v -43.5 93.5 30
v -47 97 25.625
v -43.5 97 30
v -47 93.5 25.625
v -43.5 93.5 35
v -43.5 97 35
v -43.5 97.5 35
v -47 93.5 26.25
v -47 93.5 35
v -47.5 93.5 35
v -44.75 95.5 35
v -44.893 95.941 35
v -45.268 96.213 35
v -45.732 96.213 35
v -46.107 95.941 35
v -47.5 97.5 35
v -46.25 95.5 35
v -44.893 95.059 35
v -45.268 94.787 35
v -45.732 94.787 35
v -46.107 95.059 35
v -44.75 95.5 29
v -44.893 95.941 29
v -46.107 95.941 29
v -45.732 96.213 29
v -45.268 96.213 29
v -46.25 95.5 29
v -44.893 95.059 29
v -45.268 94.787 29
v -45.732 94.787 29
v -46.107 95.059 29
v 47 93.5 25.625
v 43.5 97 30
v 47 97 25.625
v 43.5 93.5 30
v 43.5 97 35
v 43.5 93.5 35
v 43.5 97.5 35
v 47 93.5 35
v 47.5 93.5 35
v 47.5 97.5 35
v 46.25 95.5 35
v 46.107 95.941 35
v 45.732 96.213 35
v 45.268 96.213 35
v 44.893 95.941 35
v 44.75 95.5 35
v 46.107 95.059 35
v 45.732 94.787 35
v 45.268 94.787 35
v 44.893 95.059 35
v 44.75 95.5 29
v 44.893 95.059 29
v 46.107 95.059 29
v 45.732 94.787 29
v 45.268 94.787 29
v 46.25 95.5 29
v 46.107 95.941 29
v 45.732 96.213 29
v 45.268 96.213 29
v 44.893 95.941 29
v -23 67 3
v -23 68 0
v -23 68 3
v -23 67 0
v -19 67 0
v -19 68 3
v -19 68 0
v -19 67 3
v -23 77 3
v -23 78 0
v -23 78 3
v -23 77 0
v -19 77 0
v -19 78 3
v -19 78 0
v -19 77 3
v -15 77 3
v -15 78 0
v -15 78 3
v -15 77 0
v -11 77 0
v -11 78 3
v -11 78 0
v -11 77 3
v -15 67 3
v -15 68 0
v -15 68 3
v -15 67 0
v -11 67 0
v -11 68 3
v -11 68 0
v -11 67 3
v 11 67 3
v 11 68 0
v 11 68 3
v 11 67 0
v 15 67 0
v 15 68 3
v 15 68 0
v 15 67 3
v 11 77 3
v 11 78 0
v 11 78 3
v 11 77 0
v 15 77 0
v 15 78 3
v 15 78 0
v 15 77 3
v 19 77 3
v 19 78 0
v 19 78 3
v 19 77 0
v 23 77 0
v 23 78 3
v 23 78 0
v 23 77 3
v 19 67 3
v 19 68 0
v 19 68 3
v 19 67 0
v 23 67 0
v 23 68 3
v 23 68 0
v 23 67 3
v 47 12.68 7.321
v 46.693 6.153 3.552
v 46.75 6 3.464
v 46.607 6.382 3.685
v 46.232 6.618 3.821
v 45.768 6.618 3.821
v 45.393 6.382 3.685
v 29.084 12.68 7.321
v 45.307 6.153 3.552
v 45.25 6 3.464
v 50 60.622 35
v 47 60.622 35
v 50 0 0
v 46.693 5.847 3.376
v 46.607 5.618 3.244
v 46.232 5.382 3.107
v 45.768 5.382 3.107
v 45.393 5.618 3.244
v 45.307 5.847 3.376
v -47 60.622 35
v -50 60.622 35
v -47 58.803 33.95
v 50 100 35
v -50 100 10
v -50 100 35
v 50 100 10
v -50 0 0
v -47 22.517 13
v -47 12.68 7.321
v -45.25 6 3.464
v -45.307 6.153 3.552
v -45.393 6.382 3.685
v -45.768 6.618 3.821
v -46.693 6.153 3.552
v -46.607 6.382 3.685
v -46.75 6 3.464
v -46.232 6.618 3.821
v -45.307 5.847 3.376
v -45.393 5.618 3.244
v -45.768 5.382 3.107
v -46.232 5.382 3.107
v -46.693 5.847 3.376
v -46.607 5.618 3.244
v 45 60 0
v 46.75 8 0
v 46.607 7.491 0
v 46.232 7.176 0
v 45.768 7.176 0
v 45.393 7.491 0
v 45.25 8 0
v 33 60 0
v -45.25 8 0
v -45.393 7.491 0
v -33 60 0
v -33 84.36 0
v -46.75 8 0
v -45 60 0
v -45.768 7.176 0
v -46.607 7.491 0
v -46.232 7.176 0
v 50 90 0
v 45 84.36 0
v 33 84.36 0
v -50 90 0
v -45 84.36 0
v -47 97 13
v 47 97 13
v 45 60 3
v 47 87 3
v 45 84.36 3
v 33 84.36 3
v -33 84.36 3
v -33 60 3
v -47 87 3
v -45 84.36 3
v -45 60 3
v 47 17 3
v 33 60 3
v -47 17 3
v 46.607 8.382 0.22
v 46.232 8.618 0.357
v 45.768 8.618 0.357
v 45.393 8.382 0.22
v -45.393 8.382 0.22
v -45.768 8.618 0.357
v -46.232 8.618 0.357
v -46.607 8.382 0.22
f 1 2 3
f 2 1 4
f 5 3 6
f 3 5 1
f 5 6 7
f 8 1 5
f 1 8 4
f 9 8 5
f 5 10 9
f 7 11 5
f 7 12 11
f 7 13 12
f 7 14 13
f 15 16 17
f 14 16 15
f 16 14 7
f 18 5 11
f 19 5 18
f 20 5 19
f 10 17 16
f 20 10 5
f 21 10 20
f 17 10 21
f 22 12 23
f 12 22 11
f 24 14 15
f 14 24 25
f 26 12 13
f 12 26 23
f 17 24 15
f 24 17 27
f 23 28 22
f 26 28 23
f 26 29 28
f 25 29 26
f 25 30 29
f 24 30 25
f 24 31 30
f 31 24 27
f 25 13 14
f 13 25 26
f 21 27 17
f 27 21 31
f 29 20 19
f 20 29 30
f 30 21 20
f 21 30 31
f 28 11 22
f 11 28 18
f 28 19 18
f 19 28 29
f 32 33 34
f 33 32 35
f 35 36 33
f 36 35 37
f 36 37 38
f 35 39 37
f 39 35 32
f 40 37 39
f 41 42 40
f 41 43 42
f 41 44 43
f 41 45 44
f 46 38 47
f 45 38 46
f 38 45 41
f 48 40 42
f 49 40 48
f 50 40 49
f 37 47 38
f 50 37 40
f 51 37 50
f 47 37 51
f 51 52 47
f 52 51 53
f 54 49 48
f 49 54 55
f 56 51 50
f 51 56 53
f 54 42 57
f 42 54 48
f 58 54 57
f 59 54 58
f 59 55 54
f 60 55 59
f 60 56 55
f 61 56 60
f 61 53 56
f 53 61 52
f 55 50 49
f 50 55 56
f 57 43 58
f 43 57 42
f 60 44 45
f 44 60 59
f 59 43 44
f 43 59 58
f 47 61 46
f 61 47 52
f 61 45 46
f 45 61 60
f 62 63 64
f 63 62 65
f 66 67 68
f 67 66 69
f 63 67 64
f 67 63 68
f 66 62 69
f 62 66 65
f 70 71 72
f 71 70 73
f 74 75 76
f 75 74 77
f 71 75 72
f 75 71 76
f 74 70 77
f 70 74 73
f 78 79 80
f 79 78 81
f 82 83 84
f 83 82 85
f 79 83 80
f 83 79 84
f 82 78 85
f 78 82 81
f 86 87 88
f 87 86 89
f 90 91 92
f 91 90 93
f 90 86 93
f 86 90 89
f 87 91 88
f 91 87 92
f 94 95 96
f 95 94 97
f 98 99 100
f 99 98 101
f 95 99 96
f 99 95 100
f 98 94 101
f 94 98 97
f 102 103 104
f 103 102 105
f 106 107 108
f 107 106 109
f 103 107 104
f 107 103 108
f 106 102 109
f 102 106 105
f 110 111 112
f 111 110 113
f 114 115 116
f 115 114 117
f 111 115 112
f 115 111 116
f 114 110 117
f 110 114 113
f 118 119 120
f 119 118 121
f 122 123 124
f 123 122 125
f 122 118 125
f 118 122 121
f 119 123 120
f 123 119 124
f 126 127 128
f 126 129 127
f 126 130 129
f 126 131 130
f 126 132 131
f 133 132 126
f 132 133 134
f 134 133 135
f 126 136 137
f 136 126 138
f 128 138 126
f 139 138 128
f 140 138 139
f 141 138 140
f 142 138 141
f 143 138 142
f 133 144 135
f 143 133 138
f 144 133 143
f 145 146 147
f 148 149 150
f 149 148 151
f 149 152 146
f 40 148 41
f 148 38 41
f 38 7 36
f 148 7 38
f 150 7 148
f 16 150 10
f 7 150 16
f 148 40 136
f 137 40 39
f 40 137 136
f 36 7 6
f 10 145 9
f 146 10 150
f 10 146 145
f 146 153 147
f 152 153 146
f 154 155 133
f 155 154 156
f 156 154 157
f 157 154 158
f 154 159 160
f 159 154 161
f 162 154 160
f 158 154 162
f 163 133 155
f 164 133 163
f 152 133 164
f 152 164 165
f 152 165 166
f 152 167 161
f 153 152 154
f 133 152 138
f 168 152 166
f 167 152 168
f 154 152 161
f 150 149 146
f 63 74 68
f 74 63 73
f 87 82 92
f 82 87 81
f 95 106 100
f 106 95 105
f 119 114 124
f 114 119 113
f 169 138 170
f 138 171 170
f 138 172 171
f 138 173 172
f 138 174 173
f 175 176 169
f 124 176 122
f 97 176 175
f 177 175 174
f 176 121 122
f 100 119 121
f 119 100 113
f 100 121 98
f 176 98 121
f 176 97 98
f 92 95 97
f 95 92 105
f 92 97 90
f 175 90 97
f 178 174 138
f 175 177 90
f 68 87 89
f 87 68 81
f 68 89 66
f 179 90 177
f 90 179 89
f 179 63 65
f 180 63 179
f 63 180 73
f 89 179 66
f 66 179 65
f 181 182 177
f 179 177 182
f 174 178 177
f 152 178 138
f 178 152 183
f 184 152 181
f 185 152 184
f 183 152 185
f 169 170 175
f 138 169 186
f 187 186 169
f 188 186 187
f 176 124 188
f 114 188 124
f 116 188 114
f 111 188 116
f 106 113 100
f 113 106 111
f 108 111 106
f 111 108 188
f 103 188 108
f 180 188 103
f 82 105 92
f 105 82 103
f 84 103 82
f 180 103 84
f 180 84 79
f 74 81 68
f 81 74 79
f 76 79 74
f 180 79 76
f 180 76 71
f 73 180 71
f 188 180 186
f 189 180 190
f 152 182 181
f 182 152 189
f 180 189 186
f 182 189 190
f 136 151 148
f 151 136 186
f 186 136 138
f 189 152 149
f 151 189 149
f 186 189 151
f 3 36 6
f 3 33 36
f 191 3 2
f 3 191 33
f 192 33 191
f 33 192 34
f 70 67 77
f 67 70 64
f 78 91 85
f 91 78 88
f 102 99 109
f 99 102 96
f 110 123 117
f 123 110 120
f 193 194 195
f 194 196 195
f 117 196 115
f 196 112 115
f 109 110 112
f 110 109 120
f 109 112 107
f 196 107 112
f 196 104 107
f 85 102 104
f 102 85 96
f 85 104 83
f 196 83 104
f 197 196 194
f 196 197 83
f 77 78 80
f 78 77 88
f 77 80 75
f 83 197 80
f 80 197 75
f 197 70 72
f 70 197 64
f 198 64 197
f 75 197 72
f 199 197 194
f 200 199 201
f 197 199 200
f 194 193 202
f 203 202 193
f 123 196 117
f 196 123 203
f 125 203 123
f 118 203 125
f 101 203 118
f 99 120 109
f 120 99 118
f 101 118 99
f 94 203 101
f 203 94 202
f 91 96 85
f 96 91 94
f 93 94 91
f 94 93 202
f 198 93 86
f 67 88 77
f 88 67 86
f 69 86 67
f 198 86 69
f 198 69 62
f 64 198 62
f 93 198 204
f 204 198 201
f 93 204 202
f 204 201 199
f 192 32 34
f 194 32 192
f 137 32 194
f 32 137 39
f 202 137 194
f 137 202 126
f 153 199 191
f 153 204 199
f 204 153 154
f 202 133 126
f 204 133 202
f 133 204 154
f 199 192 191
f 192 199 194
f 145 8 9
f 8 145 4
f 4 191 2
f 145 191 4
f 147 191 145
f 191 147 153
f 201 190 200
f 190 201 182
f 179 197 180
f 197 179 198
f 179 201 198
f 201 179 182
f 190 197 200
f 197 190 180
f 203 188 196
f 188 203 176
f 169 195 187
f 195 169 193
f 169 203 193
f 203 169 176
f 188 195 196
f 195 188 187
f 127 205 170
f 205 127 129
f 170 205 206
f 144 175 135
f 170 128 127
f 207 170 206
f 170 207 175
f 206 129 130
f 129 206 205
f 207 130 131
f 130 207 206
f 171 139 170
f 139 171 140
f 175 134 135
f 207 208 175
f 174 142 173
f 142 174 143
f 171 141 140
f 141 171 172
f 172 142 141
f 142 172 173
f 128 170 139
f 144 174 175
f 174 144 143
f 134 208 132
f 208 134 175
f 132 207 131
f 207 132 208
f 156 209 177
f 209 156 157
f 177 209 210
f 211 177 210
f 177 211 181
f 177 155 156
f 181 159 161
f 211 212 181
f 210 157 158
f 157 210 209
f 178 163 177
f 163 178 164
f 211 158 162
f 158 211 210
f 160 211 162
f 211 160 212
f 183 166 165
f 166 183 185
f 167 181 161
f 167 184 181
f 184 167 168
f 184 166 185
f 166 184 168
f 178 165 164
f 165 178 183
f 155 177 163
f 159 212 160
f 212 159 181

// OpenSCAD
longoBase=90;
alto=35;
inclinacion=30;
thick=2.5;
radioRoda=13;
anchoRoda=10;
anchoBrida=4;
thickBrida=1;

difference(){
exterior();
interior(3);
translate ([-50+2*thick,longoBase-radioRoda*2-4,0]) ocoRoda();
translate ([50-anchoRoda-2-2*thick,longoBase-radioRoda*2-4,0]) ocoRoda();
//ocos bridas motores
translate([-23,longoBase-radioRoda-10,-1]) furados();
translate([11,longoBase-radioRoda-10,-1]) furados();
   translate([46,8,0]) rotate([30,0,0]) cylinder(r=0.75,h=10,$fn=10);
     translate([-46,8,0]) rotate([30,0,0]) cylinder(r=0.75,h=10,$fn=10);
}
translate([-50+thick,longoBase+10-thick-2,alto-10]) fixaVertical();
translate([50-thick,longoBase+10-thick-2,alto-10]) rotate([0,0,180]) fixaVertical();

module fixaVertical(){
    difference(){
    rotate([90,0,0]) linear_extrude(height=4,center=true) polygon(points=[
        [0,0],
        [0,10],
        [4,10],
        [4,5]
        ]);
        translate([2,0,4]) cylinder(r=0.75,h=14,$fn=10);
    }
}
module exterior(){
//exterior
rotate([0,-90,0]) linear_extrude( height=100, center=true) polygon(points= [
                    [ 0,0],
                    [0,longoBase],
                    [10,longoBase+10],
                    [alto,longoBase+10],
                    [alto,alto/tan(inclinacion)]
                    ]
    );
}
//interior
module interior(thick){
     translate([0,-thick,thick]) rotate([0,-90,0]) linear_extrude( height=100-2*thick, center=true) polygon(points= [
                    [ 0,20],
                    [0,longoBase],
                    [10,longoBase+10],
                    [alto,longoBase+10],
                    [alto,alto/tan(inclinacion)],
                    [10,10]
                    ]
    );
}

module ocoRoda(){
    cube([anchoRoda+2,radioRoda*0.86*2+2,thick*3]);
}

module furados(){
   cube([anchoBrida,thickBrida,thick*6]);
   translate([0,10,0]) cube([anchoBrida,thickBrida,thick*6]); 
    translate([8,10,0]) cube([anchoBrida,thickBrida,thick*6]); 
    translate([8,0,0]) cube([anchoBrida,thickBrida,thick*6]); 
}
